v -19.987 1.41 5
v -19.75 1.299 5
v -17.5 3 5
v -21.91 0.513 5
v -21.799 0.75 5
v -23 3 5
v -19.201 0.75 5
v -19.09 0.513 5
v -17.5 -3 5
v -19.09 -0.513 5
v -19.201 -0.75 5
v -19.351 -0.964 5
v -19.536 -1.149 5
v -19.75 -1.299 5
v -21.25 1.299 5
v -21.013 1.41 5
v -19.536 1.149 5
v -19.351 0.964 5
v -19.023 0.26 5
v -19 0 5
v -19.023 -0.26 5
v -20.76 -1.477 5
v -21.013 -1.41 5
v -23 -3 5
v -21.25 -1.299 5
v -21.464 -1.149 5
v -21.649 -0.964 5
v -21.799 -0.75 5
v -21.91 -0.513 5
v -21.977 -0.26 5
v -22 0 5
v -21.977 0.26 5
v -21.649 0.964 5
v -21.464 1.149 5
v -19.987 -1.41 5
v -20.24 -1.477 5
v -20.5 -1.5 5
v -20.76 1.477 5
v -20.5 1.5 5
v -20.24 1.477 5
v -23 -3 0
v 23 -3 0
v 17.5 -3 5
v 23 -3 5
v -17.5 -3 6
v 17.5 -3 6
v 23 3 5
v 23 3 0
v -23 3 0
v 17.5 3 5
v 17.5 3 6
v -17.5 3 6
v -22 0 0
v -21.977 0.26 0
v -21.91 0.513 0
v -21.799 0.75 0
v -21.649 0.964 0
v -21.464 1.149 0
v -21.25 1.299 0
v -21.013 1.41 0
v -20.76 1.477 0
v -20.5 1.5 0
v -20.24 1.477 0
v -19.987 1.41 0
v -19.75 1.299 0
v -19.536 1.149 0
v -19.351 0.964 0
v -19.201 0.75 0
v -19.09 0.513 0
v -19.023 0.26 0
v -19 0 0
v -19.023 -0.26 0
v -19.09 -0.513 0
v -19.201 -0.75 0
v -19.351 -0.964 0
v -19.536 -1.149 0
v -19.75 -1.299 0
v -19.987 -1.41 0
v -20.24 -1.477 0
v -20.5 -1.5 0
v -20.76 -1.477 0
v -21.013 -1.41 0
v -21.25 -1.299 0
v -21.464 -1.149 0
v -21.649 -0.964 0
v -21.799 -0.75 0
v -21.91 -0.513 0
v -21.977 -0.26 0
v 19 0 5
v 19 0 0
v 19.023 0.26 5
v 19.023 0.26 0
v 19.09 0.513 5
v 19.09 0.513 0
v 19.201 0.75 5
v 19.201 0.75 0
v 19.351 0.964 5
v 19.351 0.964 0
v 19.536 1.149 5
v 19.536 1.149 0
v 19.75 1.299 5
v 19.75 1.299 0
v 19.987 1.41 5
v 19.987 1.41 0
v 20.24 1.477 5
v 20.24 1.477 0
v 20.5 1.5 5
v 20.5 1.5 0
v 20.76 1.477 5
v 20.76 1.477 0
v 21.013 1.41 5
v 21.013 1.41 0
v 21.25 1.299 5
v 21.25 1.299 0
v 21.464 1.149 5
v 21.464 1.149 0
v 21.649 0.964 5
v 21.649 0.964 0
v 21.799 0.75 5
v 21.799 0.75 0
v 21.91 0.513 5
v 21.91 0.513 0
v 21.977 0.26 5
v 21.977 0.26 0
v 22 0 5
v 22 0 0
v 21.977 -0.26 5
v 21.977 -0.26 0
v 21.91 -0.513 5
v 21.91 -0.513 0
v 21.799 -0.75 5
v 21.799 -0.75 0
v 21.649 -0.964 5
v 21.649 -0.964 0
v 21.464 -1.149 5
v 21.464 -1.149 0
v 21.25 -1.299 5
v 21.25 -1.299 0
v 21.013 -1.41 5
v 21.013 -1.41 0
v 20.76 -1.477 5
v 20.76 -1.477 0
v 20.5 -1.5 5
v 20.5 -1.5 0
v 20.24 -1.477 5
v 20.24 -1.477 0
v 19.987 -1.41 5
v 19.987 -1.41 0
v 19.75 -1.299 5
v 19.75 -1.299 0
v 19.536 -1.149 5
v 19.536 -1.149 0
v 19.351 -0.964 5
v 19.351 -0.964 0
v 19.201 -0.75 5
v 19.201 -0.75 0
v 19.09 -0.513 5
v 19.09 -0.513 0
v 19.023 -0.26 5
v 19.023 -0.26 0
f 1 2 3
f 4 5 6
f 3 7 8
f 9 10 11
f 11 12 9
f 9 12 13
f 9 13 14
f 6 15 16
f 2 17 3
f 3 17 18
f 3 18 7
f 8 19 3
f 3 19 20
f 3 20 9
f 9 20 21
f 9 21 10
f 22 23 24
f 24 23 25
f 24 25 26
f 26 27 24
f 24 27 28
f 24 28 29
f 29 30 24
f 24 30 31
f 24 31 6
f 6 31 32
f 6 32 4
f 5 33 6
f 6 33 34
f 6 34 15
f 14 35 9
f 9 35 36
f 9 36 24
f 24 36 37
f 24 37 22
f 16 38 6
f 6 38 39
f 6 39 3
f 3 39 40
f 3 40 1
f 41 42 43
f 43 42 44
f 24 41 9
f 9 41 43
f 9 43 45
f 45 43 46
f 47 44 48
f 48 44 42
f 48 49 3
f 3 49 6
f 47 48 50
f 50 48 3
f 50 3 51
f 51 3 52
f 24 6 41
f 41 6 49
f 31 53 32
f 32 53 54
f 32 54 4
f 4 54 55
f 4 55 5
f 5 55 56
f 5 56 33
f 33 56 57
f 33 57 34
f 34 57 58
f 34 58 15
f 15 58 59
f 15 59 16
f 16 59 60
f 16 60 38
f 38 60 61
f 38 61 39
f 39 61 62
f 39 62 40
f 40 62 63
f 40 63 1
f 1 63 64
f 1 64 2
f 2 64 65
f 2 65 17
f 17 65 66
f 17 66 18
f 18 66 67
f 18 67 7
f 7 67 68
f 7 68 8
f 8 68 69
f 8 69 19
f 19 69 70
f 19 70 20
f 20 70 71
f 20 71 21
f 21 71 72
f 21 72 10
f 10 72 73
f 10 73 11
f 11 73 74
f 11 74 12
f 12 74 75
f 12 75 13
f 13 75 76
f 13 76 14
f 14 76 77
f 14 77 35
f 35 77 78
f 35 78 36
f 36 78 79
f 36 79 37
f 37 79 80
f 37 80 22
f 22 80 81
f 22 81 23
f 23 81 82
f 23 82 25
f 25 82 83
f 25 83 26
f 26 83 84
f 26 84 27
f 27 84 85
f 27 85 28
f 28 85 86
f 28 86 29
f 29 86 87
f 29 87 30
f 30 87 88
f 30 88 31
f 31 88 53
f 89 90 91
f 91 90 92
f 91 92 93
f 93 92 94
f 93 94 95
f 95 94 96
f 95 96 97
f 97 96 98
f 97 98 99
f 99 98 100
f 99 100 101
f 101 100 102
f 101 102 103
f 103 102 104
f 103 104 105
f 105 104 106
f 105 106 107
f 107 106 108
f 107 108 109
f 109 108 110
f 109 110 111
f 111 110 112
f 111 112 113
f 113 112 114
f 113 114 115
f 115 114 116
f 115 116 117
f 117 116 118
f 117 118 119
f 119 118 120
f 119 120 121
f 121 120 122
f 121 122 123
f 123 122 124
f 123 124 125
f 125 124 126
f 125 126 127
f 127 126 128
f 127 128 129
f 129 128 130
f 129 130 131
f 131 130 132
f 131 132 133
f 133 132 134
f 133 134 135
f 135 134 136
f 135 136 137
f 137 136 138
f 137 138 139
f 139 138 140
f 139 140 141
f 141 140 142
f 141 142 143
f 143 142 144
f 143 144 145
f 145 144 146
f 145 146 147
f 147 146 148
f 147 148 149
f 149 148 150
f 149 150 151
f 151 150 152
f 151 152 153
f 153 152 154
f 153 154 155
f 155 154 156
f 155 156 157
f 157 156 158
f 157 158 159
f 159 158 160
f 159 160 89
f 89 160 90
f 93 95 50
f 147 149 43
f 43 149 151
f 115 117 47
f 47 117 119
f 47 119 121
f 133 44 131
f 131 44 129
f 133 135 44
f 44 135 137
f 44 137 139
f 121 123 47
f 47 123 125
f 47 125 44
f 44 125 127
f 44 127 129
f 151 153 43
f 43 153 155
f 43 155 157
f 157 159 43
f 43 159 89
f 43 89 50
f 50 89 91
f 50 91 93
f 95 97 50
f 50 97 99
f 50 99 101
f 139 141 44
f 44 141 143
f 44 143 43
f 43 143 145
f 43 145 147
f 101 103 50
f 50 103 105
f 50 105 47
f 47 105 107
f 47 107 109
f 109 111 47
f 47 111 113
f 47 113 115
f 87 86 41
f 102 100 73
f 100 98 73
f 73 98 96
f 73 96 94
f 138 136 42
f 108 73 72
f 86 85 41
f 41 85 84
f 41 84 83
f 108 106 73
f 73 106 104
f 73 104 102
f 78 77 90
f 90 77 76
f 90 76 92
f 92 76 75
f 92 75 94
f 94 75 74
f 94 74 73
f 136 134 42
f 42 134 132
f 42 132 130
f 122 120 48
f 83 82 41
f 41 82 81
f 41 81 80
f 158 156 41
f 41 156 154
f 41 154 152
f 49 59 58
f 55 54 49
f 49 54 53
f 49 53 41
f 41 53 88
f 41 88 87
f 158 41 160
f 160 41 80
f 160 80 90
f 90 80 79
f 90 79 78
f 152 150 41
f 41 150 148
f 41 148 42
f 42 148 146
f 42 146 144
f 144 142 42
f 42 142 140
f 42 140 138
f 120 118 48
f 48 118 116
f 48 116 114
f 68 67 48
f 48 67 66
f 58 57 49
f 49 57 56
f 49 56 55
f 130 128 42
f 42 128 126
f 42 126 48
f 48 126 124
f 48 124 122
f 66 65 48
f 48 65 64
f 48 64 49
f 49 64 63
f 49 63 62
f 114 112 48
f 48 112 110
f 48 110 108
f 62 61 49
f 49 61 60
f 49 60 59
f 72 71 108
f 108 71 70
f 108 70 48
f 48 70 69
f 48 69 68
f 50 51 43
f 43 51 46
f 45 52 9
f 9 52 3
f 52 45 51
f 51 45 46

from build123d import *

# Parameters (mm, degrees)
SKETCH1_W           = 46
SKETCH1_H           = 6
SKETCH1_R           = 1.5
BOSS_EXTRUDE1_DEPTH = 5
SKETCH1_3_W         = 35
SKETCH1_3_H         = 6
BOSS_EXTRUDE2_DEPTH = 6


with BuildPart() as part:
    # Sketch1 → Boss-Extrude1 (new body)
    with BuildSketch(Plane.XY):
        Rectangle(SKETCH1_W, SKETCH1_H)
        with Locations((-20.5, 0)):
            Circle(SKETCH1_R, mode=Mode.SUBTRACT)
        with Locations((20.5, 0)):
            Circle(SKETCH1_R, mode=Mode.SUBTRACT)
    extrude(amount=BOSS_EXTRUDE1_DEPTH)

    # Sketch1<3> → Boss-Extrude2 (add)
    with BuildSketch(Plane.XY):
        Rectangle(SKETCH1_3_W, SKETCH1_3_H)
    extrude(amount=BOSS_EXTRUDE2_DEPTH)


solid = part.part
